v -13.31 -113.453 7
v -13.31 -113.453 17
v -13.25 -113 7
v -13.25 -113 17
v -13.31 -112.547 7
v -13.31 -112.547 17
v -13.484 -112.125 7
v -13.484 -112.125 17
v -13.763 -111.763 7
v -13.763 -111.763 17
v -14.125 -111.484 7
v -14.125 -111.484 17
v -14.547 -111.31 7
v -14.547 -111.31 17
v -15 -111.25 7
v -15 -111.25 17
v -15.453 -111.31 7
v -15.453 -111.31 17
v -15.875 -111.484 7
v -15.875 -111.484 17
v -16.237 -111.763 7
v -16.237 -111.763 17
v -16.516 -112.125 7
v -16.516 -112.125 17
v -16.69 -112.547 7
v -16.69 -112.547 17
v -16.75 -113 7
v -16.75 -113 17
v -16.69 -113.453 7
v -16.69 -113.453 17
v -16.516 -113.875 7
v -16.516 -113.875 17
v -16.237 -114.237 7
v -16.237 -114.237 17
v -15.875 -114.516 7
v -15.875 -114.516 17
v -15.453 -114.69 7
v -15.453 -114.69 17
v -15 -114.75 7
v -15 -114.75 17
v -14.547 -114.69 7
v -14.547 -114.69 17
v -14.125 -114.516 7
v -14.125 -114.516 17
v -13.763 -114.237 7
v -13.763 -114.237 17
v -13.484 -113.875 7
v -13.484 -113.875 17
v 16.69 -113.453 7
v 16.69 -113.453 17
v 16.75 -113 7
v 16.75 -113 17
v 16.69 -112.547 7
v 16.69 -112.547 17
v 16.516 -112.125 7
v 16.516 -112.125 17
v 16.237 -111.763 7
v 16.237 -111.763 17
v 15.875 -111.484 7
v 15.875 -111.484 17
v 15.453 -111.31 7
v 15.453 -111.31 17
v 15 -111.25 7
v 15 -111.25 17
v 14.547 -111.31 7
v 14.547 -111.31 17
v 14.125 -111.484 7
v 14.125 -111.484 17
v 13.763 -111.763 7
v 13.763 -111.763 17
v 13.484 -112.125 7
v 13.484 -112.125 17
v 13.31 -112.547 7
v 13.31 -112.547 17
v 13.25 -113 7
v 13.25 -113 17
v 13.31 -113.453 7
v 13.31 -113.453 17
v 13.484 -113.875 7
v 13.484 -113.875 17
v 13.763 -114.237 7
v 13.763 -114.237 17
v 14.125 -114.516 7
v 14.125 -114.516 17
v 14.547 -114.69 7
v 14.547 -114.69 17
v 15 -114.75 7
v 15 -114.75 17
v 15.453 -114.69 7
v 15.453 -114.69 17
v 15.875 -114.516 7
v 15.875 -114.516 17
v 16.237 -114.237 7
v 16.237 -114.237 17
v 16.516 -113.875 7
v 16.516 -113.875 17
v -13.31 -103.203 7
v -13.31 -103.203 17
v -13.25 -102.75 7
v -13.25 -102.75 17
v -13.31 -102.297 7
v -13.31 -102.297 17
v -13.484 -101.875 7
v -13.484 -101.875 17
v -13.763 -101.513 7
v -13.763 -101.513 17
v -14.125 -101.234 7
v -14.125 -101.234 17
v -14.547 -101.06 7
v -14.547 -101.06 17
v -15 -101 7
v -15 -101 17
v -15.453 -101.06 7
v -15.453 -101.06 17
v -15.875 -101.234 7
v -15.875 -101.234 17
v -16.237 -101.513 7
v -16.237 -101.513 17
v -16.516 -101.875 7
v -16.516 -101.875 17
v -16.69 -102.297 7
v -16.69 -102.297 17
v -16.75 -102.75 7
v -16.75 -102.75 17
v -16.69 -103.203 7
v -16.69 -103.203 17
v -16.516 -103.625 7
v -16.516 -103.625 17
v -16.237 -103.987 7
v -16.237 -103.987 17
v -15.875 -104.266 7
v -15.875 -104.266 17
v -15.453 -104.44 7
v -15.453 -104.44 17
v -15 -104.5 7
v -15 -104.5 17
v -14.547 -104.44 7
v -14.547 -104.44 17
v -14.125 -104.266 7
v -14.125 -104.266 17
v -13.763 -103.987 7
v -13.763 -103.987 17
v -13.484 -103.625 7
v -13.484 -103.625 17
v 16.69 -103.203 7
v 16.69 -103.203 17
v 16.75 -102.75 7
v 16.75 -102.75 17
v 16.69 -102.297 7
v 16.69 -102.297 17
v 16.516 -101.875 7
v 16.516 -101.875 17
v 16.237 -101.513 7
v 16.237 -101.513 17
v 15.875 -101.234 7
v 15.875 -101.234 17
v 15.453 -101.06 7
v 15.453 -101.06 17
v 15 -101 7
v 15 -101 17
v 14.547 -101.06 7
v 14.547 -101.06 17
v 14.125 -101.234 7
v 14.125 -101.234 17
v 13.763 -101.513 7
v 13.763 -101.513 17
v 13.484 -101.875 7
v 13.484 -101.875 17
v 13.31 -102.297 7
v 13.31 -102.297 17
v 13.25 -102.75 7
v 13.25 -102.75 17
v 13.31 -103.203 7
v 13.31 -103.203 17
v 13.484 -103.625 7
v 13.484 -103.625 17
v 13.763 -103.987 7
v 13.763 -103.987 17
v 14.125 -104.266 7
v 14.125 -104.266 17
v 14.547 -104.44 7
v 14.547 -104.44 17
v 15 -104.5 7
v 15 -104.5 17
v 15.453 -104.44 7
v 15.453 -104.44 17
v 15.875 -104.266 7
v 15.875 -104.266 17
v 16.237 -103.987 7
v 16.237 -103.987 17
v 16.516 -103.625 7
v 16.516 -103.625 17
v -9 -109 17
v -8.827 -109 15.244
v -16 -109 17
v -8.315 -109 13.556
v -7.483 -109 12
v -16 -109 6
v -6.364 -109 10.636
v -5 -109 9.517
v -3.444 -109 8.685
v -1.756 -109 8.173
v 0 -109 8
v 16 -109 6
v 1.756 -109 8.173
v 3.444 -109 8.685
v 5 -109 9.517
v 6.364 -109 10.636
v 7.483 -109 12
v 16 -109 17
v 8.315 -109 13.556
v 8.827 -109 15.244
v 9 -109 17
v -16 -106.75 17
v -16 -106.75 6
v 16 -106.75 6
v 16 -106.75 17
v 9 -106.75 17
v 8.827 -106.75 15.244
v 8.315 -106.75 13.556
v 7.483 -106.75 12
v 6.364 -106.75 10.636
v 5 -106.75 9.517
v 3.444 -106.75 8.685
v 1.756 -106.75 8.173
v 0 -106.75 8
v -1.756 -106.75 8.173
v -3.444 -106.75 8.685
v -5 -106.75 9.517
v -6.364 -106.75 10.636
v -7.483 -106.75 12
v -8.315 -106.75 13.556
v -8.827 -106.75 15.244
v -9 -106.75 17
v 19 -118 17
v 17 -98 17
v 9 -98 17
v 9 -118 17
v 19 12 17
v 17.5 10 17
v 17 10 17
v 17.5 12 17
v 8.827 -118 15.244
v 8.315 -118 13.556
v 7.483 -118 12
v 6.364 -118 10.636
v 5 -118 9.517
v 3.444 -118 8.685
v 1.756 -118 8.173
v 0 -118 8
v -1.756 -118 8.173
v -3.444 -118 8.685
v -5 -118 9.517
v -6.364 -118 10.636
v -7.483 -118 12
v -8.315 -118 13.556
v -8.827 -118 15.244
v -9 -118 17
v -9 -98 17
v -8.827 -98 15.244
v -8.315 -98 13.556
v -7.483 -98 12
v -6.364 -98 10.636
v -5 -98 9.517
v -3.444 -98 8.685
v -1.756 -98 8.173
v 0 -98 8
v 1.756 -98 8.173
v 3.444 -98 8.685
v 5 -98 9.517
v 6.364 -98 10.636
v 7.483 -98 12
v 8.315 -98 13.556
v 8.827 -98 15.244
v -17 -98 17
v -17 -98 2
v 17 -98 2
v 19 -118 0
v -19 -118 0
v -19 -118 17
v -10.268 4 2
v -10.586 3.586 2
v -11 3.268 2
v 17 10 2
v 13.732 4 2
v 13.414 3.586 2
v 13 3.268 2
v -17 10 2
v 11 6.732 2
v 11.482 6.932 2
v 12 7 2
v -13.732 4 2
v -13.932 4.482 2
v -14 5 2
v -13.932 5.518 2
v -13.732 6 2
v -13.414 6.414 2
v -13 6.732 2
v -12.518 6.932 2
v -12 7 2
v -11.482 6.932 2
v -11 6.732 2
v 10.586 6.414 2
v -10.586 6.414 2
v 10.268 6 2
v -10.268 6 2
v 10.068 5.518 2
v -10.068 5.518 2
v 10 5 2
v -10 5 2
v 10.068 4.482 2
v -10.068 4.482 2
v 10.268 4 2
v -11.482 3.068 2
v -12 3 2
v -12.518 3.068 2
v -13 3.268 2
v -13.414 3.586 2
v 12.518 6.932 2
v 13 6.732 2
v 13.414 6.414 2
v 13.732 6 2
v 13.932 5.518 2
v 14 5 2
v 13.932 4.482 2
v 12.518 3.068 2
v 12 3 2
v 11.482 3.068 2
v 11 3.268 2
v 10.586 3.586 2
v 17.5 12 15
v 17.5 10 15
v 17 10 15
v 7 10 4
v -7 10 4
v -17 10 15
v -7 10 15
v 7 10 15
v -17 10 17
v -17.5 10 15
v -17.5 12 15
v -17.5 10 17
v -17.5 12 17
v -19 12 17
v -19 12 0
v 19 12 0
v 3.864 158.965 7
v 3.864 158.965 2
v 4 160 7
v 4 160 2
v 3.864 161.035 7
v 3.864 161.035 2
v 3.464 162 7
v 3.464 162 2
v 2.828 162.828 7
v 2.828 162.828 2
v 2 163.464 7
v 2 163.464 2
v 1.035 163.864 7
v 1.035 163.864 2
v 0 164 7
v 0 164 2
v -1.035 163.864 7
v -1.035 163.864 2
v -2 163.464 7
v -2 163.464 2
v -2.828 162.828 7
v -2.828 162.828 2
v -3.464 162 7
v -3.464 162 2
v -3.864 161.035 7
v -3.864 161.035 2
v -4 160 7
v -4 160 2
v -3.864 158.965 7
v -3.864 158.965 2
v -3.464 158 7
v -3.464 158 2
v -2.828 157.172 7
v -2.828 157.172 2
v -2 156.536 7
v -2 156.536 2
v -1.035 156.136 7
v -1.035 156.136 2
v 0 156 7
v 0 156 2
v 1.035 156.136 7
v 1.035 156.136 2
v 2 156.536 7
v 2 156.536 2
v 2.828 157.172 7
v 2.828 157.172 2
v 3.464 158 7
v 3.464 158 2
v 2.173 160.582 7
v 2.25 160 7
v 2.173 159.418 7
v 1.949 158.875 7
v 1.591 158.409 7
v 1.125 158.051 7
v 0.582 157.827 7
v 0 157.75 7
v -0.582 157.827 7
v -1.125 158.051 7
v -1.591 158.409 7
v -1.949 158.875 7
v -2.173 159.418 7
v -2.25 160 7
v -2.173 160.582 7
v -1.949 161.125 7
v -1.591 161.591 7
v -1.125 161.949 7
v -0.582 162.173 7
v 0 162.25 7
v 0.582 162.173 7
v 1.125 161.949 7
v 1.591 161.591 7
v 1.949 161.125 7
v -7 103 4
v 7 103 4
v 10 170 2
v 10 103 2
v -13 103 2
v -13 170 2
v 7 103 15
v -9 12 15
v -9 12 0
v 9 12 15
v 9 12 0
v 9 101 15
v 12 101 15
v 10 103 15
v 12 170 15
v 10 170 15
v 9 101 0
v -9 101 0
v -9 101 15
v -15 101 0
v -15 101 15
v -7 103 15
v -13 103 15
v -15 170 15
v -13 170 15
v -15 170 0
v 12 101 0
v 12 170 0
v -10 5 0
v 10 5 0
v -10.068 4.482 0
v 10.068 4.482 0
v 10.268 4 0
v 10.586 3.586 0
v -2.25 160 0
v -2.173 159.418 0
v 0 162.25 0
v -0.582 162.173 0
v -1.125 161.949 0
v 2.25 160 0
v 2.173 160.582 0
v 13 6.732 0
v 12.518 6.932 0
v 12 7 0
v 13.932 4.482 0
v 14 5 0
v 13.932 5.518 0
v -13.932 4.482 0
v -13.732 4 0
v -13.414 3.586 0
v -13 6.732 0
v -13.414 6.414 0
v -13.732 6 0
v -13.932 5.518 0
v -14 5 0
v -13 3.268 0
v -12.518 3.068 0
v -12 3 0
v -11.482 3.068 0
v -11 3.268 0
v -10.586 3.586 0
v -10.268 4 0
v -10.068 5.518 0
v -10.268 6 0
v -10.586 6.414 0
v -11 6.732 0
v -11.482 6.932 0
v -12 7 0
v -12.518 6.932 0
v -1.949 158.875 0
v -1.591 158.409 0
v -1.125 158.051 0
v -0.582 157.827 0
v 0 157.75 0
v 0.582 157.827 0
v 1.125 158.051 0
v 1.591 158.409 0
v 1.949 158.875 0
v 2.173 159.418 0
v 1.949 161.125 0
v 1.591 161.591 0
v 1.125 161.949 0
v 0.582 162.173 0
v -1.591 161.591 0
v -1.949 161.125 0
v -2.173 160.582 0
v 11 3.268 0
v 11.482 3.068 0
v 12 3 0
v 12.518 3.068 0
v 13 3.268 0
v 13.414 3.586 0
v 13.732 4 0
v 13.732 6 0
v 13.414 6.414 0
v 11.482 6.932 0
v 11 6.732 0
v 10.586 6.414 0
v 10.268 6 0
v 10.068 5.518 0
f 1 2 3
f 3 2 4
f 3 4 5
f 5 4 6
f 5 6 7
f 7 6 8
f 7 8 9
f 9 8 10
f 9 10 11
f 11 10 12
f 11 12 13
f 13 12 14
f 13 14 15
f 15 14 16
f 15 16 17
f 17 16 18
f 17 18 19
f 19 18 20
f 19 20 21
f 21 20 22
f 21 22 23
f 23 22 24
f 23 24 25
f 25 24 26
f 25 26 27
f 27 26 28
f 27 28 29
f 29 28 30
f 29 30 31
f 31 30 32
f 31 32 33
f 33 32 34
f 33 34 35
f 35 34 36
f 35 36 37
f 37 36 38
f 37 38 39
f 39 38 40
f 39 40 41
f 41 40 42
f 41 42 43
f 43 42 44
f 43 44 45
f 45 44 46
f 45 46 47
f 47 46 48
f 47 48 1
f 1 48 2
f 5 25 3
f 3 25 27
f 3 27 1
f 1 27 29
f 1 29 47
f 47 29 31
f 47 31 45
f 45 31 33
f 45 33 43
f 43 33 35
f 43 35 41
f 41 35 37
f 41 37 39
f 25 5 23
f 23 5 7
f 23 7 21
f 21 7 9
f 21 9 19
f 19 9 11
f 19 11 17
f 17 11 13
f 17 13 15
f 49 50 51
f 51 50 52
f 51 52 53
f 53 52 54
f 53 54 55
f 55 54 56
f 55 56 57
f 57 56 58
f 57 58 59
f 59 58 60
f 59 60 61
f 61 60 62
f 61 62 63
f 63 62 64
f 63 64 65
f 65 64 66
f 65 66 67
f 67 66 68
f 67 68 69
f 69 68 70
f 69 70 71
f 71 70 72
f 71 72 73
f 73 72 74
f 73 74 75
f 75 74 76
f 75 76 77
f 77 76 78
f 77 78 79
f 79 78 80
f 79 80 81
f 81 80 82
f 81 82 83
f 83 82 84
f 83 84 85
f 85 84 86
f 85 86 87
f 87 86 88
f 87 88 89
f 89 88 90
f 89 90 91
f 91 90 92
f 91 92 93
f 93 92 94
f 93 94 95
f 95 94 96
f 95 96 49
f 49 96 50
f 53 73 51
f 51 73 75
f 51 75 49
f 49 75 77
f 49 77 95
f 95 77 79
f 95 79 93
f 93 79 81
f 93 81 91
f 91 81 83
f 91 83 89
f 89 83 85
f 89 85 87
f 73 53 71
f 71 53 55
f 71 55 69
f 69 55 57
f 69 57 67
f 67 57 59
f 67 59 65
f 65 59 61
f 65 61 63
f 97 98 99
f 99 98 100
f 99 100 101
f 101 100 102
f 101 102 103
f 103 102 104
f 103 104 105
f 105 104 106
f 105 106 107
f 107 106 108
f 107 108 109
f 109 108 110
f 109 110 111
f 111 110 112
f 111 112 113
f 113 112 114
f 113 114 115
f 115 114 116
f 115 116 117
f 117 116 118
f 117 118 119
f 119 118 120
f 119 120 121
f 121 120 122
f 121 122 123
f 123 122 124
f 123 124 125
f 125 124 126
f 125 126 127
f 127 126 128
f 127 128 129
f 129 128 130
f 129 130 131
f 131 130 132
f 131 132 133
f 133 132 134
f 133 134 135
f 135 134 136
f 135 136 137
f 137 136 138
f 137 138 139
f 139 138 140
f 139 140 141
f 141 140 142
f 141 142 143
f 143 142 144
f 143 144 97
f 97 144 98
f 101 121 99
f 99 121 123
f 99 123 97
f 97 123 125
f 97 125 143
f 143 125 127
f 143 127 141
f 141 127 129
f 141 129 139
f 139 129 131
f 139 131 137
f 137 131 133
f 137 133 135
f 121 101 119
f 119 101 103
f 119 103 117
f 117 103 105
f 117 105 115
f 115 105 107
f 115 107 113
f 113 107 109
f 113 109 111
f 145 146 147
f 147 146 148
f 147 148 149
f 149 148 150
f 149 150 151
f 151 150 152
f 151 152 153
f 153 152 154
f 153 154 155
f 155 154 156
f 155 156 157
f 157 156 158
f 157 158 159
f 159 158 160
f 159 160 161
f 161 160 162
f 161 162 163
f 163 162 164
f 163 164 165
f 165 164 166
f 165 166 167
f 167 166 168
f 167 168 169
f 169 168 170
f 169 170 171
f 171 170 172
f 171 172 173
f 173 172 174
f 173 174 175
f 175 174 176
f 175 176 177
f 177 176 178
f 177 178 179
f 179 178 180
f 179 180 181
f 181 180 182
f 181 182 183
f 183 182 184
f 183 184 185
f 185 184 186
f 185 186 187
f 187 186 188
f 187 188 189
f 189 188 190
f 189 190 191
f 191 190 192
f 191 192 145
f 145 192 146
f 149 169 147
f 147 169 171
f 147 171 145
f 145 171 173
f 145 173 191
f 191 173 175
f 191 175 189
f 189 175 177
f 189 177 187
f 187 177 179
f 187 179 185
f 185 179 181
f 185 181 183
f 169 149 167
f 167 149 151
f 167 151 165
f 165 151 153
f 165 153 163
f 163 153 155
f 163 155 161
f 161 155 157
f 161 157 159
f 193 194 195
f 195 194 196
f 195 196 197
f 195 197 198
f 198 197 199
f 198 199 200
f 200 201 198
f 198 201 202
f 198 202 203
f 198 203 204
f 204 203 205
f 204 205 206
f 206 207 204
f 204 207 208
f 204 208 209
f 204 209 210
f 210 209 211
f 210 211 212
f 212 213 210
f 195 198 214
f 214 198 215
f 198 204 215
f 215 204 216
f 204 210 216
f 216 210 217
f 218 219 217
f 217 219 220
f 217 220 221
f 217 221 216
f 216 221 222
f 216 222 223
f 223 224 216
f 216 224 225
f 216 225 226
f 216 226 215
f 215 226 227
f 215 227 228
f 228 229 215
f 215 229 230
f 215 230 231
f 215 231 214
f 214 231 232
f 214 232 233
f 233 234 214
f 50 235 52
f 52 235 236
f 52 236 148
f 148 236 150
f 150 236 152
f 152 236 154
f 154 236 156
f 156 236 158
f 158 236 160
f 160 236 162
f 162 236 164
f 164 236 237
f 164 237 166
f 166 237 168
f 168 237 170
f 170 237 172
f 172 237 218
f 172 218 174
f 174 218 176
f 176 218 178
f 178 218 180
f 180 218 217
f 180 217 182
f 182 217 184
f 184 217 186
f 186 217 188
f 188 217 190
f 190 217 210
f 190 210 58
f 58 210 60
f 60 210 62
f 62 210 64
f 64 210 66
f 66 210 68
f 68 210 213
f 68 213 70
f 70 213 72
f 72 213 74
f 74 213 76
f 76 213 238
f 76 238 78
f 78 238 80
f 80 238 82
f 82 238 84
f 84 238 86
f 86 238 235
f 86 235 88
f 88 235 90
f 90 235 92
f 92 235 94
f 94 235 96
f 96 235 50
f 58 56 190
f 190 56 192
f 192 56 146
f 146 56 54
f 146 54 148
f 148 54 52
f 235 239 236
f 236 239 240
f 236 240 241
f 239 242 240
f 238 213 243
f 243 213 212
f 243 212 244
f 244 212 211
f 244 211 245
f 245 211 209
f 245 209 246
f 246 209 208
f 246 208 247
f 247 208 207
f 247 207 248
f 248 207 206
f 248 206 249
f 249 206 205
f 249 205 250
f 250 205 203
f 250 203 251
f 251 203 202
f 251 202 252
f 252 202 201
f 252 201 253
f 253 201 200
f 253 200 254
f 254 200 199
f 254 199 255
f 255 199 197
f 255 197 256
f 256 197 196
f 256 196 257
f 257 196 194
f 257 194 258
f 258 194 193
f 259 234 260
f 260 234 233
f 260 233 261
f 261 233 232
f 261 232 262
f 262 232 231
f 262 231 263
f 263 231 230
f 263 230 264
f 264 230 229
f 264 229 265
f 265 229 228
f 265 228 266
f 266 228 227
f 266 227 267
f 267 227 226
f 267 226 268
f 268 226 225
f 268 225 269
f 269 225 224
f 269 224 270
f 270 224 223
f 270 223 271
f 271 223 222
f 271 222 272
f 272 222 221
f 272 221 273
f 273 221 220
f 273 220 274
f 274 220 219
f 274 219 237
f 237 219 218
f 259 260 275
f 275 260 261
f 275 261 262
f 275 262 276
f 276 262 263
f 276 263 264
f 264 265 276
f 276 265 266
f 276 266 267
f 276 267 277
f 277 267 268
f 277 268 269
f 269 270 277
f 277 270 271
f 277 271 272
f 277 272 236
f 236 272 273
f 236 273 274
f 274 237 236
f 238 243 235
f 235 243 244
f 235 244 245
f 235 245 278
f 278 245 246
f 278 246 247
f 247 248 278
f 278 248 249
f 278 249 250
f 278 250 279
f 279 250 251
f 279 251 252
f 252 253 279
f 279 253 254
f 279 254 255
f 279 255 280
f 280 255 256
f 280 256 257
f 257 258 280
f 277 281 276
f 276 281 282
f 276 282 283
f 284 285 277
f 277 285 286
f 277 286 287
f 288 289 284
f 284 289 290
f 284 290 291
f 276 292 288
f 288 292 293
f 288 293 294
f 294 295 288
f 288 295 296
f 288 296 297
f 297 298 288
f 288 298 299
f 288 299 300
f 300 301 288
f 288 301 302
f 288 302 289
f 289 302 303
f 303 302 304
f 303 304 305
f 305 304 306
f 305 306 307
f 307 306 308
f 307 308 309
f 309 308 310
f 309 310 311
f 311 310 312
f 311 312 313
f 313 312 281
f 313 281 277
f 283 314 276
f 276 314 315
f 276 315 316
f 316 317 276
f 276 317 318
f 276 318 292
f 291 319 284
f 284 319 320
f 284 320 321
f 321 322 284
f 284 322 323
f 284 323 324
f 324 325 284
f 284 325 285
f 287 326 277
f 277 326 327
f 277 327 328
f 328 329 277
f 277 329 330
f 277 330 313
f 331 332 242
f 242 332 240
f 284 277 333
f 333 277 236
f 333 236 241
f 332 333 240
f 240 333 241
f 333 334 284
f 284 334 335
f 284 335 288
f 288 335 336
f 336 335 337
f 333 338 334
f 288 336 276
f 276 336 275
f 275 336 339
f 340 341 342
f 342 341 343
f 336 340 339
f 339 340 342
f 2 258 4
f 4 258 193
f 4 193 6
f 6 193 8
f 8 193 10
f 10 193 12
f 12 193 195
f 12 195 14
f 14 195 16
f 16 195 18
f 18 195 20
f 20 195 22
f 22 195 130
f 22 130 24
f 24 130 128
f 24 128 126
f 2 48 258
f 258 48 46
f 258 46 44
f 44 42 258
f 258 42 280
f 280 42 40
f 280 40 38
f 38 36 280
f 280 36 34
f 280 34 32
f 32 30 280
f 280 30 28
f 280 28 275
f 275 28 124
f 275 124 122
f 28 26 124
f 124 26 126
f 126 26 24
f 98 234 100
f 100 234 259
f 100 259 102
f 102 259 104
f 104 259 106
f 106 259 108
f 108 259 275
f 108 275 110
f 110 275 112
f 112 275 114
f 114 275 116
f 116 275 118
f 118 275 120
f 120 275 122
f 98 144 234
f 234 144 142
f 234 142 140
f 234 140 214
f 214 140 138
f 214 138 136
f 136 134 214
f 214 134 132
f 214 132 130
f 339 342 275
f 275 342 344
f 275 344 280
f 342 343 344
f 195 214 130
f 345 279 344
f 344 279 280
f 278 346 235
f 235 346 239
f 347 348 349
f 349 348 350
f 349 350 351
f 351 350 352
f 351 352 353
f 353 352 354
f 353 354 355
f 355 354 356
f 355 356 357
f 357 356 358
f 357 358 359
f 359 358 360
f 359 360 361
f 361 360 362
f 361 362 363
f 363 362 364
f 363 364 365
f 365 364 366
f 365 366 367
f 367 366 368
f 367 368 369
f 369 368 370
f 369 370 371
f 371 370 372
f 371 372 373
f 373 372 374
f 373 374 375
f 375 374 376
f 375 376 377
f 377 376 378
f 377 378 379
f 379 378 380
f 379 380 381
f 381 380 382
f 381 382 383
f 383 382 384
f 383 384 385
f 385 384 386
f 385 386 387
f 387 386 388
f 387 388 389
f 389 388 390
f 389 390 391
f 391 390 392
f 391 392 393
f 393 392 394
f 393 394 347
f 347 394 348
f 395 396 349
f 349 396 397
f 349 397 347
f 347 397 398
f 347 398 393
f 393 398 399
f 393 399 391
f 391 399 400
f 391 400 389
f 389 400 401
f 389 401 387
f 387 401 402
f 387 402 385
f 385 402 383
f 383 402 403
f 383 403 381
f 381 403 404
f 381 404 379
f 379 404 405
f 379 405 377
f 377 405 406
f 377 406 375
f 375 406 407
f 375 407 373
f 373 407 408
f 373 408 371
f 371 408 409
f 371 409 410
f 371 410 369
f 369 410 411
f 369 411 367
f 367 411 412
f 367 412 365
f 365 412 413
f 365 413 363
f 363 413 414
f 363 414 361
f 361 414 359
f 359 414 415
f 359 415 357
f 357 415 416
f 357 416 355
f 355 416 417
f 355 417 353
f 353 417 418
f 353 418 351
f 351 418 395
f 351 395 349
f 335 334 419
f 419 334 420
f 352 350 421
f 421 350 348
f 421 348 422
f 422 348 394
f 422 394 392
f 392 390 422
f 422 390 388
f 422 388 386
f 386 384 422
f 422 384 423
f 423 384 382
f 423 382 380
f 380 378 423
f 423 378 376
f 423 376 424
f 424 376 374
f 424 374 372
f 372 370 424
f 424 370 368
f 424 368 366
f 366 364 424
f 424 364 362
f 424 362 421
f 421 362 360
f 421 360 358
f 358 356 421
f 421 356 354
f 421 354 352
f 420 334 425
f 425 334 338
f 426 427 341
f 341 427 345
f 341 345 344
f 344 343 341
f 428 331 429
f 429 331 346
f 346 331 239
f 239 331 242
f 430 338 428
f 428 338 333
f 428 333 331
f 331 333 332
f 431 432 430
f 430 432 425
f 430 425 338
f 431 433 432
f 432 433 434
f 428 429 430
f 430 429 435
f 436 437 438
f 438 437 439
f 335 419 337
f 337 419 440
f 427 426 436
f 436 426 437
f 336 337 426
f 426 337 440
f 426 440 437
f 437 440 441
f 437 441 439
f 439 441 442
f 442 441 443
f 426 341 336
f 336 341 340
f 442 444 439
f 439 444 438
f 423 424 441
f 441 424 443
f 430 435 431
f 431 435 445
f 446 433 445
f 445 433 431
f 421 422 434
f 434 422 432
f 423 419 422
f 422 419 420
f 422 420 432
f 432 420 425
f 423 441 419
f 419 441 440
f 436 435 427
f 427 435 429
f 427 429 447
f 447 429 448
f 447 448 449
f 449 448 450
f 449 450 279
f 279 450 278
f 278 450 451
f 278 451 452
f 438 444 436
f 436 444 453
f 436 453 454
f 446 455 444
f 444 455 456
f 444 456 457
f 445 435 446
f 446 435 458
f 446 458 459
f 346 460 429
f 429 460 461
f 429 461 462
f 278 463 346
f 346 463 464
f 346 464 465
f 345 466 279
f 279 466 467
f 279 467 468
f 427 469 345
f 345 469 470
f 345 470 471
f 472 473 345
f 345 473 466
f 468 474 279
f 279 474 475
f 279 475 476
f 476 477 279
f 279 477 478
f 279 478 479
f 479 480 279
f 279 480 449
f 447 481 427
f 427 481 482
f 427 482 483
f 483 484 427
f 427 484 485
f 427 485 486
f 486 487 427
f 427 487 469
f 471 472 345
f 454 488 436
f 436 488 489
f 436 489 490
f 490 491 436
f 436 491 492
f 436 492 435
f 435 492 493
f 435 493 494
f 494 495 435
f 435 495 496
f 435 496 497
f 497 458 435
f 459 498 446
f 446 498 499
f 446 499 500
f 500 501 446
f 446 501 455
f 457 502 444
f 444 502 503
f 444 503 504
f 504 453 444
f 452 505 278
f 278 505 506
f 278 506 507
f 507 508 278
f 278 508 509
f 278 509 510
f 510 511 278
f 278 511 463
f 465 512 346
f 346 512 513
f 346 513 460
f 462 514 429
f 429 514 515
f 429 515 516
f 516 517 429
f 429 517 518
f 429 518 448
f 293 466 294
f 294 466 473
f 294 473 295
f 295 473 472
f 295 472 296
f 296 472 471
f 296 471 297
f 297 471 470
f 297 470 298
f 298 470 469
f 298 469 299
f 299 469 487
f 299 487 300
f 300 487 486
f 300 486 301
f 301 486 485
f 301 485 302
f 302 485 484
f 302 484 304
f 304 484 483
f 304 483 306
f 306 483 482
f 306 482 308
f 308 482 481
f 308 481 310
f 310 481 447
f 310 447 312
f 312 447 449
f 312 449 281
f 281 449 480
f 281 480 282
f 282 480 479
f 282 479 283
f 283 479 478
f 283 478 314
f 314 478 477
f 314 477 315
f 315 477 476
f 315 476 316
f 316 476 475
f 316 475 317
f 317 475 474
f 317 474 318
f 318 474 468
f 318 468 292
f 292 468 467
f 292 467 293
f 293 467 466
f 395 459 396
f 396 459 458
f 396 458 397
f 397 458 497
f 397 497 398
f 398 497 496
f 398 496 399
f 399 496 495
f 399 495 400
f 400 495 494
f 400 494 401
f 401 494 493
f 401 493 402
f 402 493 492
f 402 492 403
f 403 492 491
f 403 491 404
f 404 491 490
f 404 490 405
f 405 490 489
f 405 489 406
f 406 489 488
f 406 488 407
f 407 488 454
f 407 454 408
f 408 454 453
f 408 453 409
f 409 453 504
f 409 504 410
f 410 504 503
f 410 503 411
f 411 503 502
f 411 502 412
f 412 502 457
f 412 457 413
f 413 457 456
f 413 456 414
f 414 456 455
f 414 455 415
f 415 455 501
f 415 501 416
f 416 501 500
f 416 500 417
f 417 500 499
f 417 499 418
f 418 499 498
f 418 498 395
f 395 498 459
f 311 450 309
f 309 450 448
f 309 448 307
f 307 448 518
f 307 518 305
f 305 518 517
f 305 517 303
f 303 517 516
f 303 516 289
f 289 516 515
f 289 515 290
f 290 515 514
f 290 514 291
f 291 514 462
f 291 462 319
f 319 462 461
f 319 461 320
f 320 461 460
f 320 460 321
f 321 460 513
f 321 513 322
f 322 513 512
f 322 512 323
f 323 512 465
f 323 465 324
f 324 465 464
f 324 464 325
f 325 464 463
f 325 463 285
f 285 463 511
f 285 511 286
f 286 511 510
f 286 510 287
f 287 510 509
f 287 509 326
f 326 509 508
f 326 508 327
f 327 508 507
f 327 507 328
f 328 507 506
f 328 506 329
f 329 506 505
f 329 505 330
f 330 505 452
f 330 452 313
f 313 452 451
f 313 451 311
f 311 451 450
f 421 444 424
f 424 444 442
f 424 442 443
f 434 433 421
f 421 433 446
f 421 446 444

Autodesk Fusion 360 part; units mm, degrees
sketch "スケッチ1" plane through (0, 0, 0) normal (0, 0, 1) x (1, 0, 0)
  line L0 (-17.5, 170) -> (17.5, 170)
  line L1 (17.5, 170) -> (17.5, 0)
  line L2 (17.5, 0) -> (-17.5, 0)
  line L3 (-17.5, 0) -> (-17.5, 170)
  circle A0 centre (12, 5) radius 2
  circle A1 centre (-12, 5) radius 2
  line L4 (12, 5) -> (-12, 5) construction
  circle A2 centre (0, 160) radius 2.25
  dimension "d1" = 170
  dimension "d2" = 35
  dimension "d3" = 4
  dimension "d4" = 4
  dimension "d5" = 24
  dimension "d6" = 5
  dimension "d7" = 5.5
  dimension "d8" = 4.5
  dimension "d9" = 155
extrude "押し出し1" add sketch "スケッチ1" along normal blind 2 makes body 1
sketch "スケッチ2" plane through (0, 0, 2) normal (0, 0, 1) x (-1, 0, 0)
  circle A0 centre (-12, -5) radius 2
  circle A1 centre (0, -160) radius 2.25
  circle A2 centre (12, -5) radius 2
  line L0 (17.5, 0) -> (-17.5, 0)
  line L1 (-17.5, 0) -> (-17.5, -170)
  line L2 (-17.5, -170) -> (17.5, -170)
  line L3 (17.5, -170) -> (17.5, 0)
  line L4 (-7, -170) -> (-17.5, -170)
  line L5 (-17.5, -170) -> (-17.5, -10)
  line L6 (-17.5, -10) -> (-7, -10)
  line L7 (-7, -10) -> (-7, -170)
  line L8 (17.5, -170) -> (7, -170)
  line L9 (7, -170) -> (7, -10)
  line L10 (7, -10) -> (17.5, -10)
  line L11 (17.5, -10) -> (17.5, -170)
  dimension "d12" = 10.5
  dimension "d13" = 10
  dimension "d14" = 10.5
  dimension "d15" = 10
extrude "押し出し2" cut sketch "スケッチ2" against normal blind 2 contours L2 L3 L8 L9 L10 L11 | L1 L2 L4 L5 L6 L7 bodies 1
sketch "スケッチ3" plane through (7, 0, 0) normal (1, 0, 0) x (0, 1, 0)
  line L0 (170, 2) -> (10, 2)
  line L1 (10, 2) -> (10, 0)
  line L2 (10, 0) -> (170, 0)
  line L3 (170, 0) -> (170, 2)
  line L4 (10, 15) -> (103, 15)
  line L5 (103, 15) -> (103, 0)
  line L6 (103, 0) -> (10, 0)
  line L7 (10, 0) -> (10, 15)
  dimension "d18" = 15
  dimension "d19" = 93
extrude "押し出し3" add sketch "スケッチ3" along normal blind 2 separate body contours L0 L1 L2 L5 L6 L7 | L0 L4 L5 L7 makes body 2
sketch "スケッチ4" plane through (-7, 0, 0) normal (-1, 0, 0) x (0, -1, 0)
  line L0 (-10, 2) -> (-170, 2)
  line L1 (-170, 2) -> (-170, 0)
  line L2 (-170, 0) -> (-10, 0)
  line L3 (-10, 0) -> (-10, 2)
  line L4 (-10, 15) -> (-103, 15)
  line L5 (-103, 15) -> (-103, 0)
  line L6 (-103, 0) -> (-10, 0)
  line L7 (-10, 0) -> (-10, 15)
  line L8 (-103, 15) -> (-103, 0)
  line L9 (-10, 0) -> (-10, 15)
  line L10 (-10, 15) -> (-103, 15)
extrude "押し出し4" add sketch "スケッチ4" along normal blind 2 separate body contours L0 L2 L3 L5 L6 L7 L8 L9 | L0 L4 L5 L7 L8 L9 L10 makes body 3
sketch "スケッチ5" plane through (0, 0, 2) normal (0, 0, 1) x (-1, 0, 0)
  line L0 (7, -170) -> (7, -10)
  line L1 (7, -10) -> (17.5, -10)
  line L2 (17.5, -10) -> (17.5, 0)
  line L3 (17.5, 0) -> (-17.5, 0)
  line L4 (-17.5, 0) -> (-17.5, -10)
  line L5 (-17.5, -10) -> (-7, -10)
  line L6 (-7, -10) -> (-7, -170)
  line L7 (-7, -170) -> (7, -170)
  circle A0 centre (12, -5) radius 2
  circle A1 centre (0, -160) radius 2.25
  circle A2 centre (-12, -5) radius 2
  line L8 (-7, -170) -> (-10, -170)
  line L9 (-10, -170) -> (-10, -103)
  line L10 (-10, -103) -> (-7, -103)
  line L11 (-7, -103) -> (-7, -170)
  line L12 (-7, -103) -> (-9, -103)
  line L13 (7, -170) -> (13, -170)
  line L14 (13, -170) -> (13, -103)
  line L15 (13, -103) -> (7, -103)
  line L16 (7, -103) -> (7, -170)
  line L17 (7, -103) -> (9, -103)
  dimension "d24" = 3
  dimension "d25" = 6
extrude "押し出し5" add sketch "スケッチ5" against normal blind 2 contours L0 L13 L14 L15 L16 L17 | L6 L8 L9 L10 L11 L12 bodies 1 2 3
sketch "スケッチ10" plane through (-13, 0, 0) normal (-1, 0, 0) x (0, -1, 0)
  line L0 (-103, 2) -> (-170, 2)
  line L1 (-170, 2) -> (-170, 0)
  line L2 (-170, 0) -> (-103, 0)
  line L3 (-103, 0) -> (-103, 2)
  line L4 (-103, 0) -> (-170, 0)
  line L5 (-170, 0) -> (-170, 15)
  line L6 (-170, 15) -> (-103, 15)
  line L7 (-103, 15) -> (-103, 0)
  point P0 (-103, 15)
extrude "押し出し8" add sketch "スケッチ10" along normal blind 2 separate body makes body 4
sketch "スケッチ11" plane through (10, 0, 0) normal (1, 0, 0) x (0, 1, 0)
  line L0 (170, 2) -> (103, 2)
  line L1 (103, 2) -> (103, 0)
  line L2 (103, 0) -> (170, 0)
  line L3 (170, 0) -> (170, 2)
  line L4 (103, 0) -> (170, 0)
  line L5 (170, 0) -> (170, 15)
  line L6 (170, 15) -> (103, 15)
  line L7 (103, 15) -> (103, 0)
  line L8 (103, 15) -> (10, 15)
extrude "押し出し9" add sketch "スケッチ11" along normal blind 2 separate body makes body 5
sketch "スケッチ12" plane through (0, 103, 0) normal (0, -1, 0) x (1, 0, 0)
  line L0 (-13, 0) -> (-13, 15)
  line L1 (-13, 15) -> (-15, 15)
  line L2 (-15, 15) -> (-15, 0)
  line L3 (-15, 0) -> (-13, 0)
  line L4 (-15, 15) -> (-7, 15)
  line L5 (-7, 15) -> (-7, 0)
  line L6 (-7, 0) -> (-15, 0)
  line L7 (-15, 0) -> (-15, 15)
  line L8 (-7, 2) -> (-7, 15)
  line L9 (17.5, 0) -> (-17.5, 0)
  line L10 (7, 15) -> (12, 15)
  line L11 (12, 15) -> (12, 0)
  line L12 (12, 0) -> (7, 0)
  line L13 (7, 0) -> (7, 15)
  line L14 (12, 15) -> (12, 0)
  line L15 (7, 2) -> (7, 15)
  line L16 (10, 15) -> (12, 15)
extrude "押し出し10" add sketch "スケッチ12" along normal blind 2 bodies 1 4 5
sketch "スケッチ13" plane through (0, 10, 0) normal (0, 1, 0) x (-1, 0, 0)
  line L0 (-9, 0) -> (-9, 2)
  line L1 (-9, 2) -> (-17.5, 2)
  line L2 (-17.5, 2) -> (-17.5, 0)
  line L3 (-17.5, 0) -> (-9, 0)
  line L4 (-17.5, 0) -> (-7, 0)
  line L5 (-7, 0) -> (-7, 15)
  line L6 (-7, 15) -> (-17.5, 15)
  line L7 (-17.5, 15) -> (-17.5, 0)
  line L8 (7, 15) -> (17.5, 15)
  line L9 (17.5, 15) -> (17.5, 0)
  line L10 (17.5, 0) -> (7, 0)
  line L11 (7, 0) -> (7, 15)
  point P0 (-7, 15)
  point P1 (7, 15)
  point P2 (17.5, 0)
extrude "押し出し11" add sketch "スケッチ13" along normal blind 2 bodies 1
sketch "スケッチ14" plane through (0, 0, 2) normal (0, 0, 1) x (-1, 0, 0)
  line L0 (7, -103) -> (7, -10)
  line L1 (7, -10) -> (17.5, -10)
  line L2 (17.5, -10) -> (17.5, 0)
  line L3 (17.5, 0) -> (-17.5, 0)
  line L4 (-17.5, 0) -> (-17.5, -10)
  line L5 (-17.5, -10) -> (-7, -10)
  line L6 (-7, -10) -> (-7, -103)
  line L7 (-7, -103) -> (-10, -103)
  line L8 (-10, -103) -> (-10, -170)
  line L9 (-10, -170) -> (13, -170)
  line L10 (13, -170) -> (13, -103)
  line L11 (13, -103) -> (7, -103)
  circle A0 centre (12, -5) radius 2
  circle A1 centre (0, -160) radius 2.25
  circle A2 centre (-12, -5) radius 2
  line L12 (7, -103) -> (-7, -103)
  line L13 (-7, -103) -> (-7, -10)
  line L14 (-7, -10) -> (7, -10)
  line L15 (7, -10) -> (7, -103)
extrude "押し出し12" add sketch "スケッチ14" along normal blind 2 contours L0 L6 L12 L13 L14 L15 bodies 1
sketch "スケッチ15" plane through (0, 0, 2) normal (0, 0, 1) x (-1, 0, 0)
  circle A0 centre (0, -160) radius 2.25
  line L0 (13, -103) -> (-10, -103)
  line L1 (-10, -103) -> (-10, -170)
  line L2 (-10, -170) -> (13, -170)
  line L3 (13, -170) -> (13, -103)
  circle A1 centre (0, -160) radius 4
  dimension "d43" = 8
extrude "押し出し13" add sketch "スケッチ15" along normal blind 5 contours A1 bodies 1
sketch "スケッチ19" plane through (0, 0, 0) normal (0, 0, -1) x (1, 0, 0)
  line L0 (-9, -12) -> (-9, -101)
  line L1 (-9, -101) -> (-15, -101)
  line L2 (-15, -101) -> (-15, -170)
  line L3 (-15, -170) -> (12, -170)
  line L4 (12, -170) -> (12, -101)
  line L5 (12, -101) -> (9, -101)
  line L6 (9, -101) -> (9, -12)
  line L7 (9, -12) -> (17.5, -12)
  line L8 (17.5, -12) -> (17.5, 0)
  line L9 (17.5, 0) -> (-17.5, 0)
  line L10 (-17.5, 0) -> (-17.5, -12)
  line L11 (-17.5, -12) -> (-9, -12)
  circle A0 centre (-12, -5) radius 2
  circle A1 centre (0, -160) radius 2.25
  circle A2 centre (12, -5) radius 2
  line L12 (19, -12) -> (-19, -12)
  line L13 (-19, -12) -> (-19, 118)
  line L14 (-19, 118) -> (19, 118)
  line L15 (19, 118) -> (19, -12)
  line L16 (0, -1.75) -> (0, -22.5)
  dimension "d53" = 130
  dimension "d54" = 38
extrude "押し出し16" add sketch "スケッチ19" against normal blind 2 contours L8 L9 L10 L12 L13 L14 L15 bodies 1
sketch "スケッチ21" plane through (0, 0, 2) normal (0, 0, 1) x (-1, 0, 0)
  line L0 (-17.5, -10) -> (17.5, -10)
  line L1 (17.5, -10) -> (17.5, -12)
  line L2 (17.5, -12) -> (19, -12)
  line L3 (19, -12) -> (19, 118)
  line L4 (19, 118) -> (-19, 118)
  line L5 (-19, 118) -> (-19, -12)
  line L6 (-19, -12) -> (-17.5, -12)
  line L7 (-17.5, -12) -> (-17.5, -10)
  circle A0 centre (12, -5) radius 2
  circle A1 centre (-12, -5) radius 2
  line L8 (19, -12) -> (17, -12)
  line L9 (17, -12) -> (17, 98)
  line L10 (17, 98) -> (19, 98)
  line L11 (19, 98) -> (19, -12)
  line L12 (-19, -12) -> (-17, -12)
  line L13 (-17, -12) -> (-17, 98)
  line L14 (-17, 98) -> (-19, 98)
  line L15 (-19, 98) -> (-19, -12)
  dimension "d59" = 110
  dimension "d60" = 110
  dimension "d61" = 2
  dimension "d62" = 2
extrude "押し出し17" add sketch "スケッチ21" along normal blind 15 contours L0 L5 L6 L7 L12 L13 L14 L15 | L0 L1 L2 L3 L8 L9 L10 L11 bodies 1
sketch "スケッチ22" plane through (0, 0, 2) normal (0, 0, 1) x (-1, 0, 0)
  circle A0 centre (-12, -5) radius 2
  circle A1 centre (12, -5) radius 2
  line L0 (-19, 98) -> (-17, 98)
  line L1 (-17, 98) -> (-17, -10)
  line L2 (-17, -10) -> (17, -10)
  line L3 (17, -10) -> (17, 98)
  line L4 (17, 98) -> (19, 98)
  line L5 (19, 98) -> (19, 118)
  line L6 (19, 118) -> (-19, 118)
  line L7 (-19, 118) -> (-19, 98)
  line L8 (-19, 118) -> (19, 118)
  line L9 (19, 118) -> (19, 98)
  line L10 (19, 98) -> (-19, 98)
  line L11 (-19, 98) -> (-19, 118)
extrude "押し出し18" add sketch "スケッチ22" along normal blind 15 contours L0 L4 L5 L6 L7 L8 L9 L10 L11 bodies 1
sketch "スケッチ25" plane through (0, -118, 0) normal (0, -1, 0) x (1, 0, 0)
  line L0 (-19, 0) -> (19, 0)
  line L1 (19, 0) -> (19, 17)
  line L2 (19, 17) -> (-19, 17)
  line L3 (-19, 17) -> (-19, 0)
  circle A0 centre (0, 17) radius 9
  dimension "d69" = 18
extrude "押し出し19" cut sketch "スケッチ25" against normal up to surface (20 mm away) contours L2 A0 picked at (-1.096, 14.2074) bodies 1
ref_plane "作業平面3" through (0, -109, 8.5) normal (0, -1, 0) x (1, 0, 0)
sketch "スケッチ26" plane through (0, -109, 8.5) normal (0, -1, 0) x (1, 0, 0)
  line L0 (-16, 8.5) -> (16, 8.5)
  line L1 (16, 8.5) -> (16, -2.5)
  line L2 (16, -2.5) -> (-16, -2.5)
  line L3 (-16, -2.5) -> (-16, 8.5)
  line L4 (9, 8.5) -> (19, 8.5)
  line L5 (0, -6.75) -> (0, 14)
  dimension "d73" = 32
  dimension "d74" = 11
extrude "押し出し20" cut sketch "スケッチ26" against normal blind 2.25 bodies 1
sketch "スケッチ29" plane through (0, 0, 17) normal (0, 0, 1) x (-1, 0, 0)
  line L0 (16, 106.75) -> (9, 106.75)
  line L1 (9, 106.75) -> (9, 98)
  line L2 (9, 98) -> (17, 98)
  line L3 (17, 98) -> (17, -10)
  line L4 (17, -10) -> (17.5, -10)
  line L5 (17.5, -10) -> (17.5, -12)
  line L6 (17.5, -12) -> (19, -12)
  line L7 (19, -12) -> (19, 118)
  line L8 (19, 118) -> (9, 118)
  line L9 (9, 118) -> (9, 109)
  line L10 (9, 109) -> (16, 109)
  line L11 (16, 109) -> (16, 106.75)
  line L12 (15, 102.75) -> (-15, 102.75) construction
  line L13 (-15, 102.75) -> (-15, 113) construction
  line L14 (-15, 113) -> (15, 113) construction
  line L15 (15, 113) -> (15, 102.75) construction
  line L16 (-16, 106.75) -> (-16, 109) construction
  circle A0 centre (15, 102.75) radius 1.75
  circle A1 centre (15, 113) radius 1.75
  circle A2 centre (-15, 113) radius 1.75
  circle A3 centre (-15, 102.75) radius 1.75
  dimension "d85" = 1
  dimension "d86" = 4
  dimension "d87" = 4
  dimension "d88" = 1
  dimension "d89" = 3.5
  dimension "d90" = 3.5
  dimension "d91" = 3.5
  dimension "d92" = 3.5
extrude "押し出し22" cut sketch "スケッチ29" against normal blind 10 contours A0 | A1 | A2 | A3 bodies 1
